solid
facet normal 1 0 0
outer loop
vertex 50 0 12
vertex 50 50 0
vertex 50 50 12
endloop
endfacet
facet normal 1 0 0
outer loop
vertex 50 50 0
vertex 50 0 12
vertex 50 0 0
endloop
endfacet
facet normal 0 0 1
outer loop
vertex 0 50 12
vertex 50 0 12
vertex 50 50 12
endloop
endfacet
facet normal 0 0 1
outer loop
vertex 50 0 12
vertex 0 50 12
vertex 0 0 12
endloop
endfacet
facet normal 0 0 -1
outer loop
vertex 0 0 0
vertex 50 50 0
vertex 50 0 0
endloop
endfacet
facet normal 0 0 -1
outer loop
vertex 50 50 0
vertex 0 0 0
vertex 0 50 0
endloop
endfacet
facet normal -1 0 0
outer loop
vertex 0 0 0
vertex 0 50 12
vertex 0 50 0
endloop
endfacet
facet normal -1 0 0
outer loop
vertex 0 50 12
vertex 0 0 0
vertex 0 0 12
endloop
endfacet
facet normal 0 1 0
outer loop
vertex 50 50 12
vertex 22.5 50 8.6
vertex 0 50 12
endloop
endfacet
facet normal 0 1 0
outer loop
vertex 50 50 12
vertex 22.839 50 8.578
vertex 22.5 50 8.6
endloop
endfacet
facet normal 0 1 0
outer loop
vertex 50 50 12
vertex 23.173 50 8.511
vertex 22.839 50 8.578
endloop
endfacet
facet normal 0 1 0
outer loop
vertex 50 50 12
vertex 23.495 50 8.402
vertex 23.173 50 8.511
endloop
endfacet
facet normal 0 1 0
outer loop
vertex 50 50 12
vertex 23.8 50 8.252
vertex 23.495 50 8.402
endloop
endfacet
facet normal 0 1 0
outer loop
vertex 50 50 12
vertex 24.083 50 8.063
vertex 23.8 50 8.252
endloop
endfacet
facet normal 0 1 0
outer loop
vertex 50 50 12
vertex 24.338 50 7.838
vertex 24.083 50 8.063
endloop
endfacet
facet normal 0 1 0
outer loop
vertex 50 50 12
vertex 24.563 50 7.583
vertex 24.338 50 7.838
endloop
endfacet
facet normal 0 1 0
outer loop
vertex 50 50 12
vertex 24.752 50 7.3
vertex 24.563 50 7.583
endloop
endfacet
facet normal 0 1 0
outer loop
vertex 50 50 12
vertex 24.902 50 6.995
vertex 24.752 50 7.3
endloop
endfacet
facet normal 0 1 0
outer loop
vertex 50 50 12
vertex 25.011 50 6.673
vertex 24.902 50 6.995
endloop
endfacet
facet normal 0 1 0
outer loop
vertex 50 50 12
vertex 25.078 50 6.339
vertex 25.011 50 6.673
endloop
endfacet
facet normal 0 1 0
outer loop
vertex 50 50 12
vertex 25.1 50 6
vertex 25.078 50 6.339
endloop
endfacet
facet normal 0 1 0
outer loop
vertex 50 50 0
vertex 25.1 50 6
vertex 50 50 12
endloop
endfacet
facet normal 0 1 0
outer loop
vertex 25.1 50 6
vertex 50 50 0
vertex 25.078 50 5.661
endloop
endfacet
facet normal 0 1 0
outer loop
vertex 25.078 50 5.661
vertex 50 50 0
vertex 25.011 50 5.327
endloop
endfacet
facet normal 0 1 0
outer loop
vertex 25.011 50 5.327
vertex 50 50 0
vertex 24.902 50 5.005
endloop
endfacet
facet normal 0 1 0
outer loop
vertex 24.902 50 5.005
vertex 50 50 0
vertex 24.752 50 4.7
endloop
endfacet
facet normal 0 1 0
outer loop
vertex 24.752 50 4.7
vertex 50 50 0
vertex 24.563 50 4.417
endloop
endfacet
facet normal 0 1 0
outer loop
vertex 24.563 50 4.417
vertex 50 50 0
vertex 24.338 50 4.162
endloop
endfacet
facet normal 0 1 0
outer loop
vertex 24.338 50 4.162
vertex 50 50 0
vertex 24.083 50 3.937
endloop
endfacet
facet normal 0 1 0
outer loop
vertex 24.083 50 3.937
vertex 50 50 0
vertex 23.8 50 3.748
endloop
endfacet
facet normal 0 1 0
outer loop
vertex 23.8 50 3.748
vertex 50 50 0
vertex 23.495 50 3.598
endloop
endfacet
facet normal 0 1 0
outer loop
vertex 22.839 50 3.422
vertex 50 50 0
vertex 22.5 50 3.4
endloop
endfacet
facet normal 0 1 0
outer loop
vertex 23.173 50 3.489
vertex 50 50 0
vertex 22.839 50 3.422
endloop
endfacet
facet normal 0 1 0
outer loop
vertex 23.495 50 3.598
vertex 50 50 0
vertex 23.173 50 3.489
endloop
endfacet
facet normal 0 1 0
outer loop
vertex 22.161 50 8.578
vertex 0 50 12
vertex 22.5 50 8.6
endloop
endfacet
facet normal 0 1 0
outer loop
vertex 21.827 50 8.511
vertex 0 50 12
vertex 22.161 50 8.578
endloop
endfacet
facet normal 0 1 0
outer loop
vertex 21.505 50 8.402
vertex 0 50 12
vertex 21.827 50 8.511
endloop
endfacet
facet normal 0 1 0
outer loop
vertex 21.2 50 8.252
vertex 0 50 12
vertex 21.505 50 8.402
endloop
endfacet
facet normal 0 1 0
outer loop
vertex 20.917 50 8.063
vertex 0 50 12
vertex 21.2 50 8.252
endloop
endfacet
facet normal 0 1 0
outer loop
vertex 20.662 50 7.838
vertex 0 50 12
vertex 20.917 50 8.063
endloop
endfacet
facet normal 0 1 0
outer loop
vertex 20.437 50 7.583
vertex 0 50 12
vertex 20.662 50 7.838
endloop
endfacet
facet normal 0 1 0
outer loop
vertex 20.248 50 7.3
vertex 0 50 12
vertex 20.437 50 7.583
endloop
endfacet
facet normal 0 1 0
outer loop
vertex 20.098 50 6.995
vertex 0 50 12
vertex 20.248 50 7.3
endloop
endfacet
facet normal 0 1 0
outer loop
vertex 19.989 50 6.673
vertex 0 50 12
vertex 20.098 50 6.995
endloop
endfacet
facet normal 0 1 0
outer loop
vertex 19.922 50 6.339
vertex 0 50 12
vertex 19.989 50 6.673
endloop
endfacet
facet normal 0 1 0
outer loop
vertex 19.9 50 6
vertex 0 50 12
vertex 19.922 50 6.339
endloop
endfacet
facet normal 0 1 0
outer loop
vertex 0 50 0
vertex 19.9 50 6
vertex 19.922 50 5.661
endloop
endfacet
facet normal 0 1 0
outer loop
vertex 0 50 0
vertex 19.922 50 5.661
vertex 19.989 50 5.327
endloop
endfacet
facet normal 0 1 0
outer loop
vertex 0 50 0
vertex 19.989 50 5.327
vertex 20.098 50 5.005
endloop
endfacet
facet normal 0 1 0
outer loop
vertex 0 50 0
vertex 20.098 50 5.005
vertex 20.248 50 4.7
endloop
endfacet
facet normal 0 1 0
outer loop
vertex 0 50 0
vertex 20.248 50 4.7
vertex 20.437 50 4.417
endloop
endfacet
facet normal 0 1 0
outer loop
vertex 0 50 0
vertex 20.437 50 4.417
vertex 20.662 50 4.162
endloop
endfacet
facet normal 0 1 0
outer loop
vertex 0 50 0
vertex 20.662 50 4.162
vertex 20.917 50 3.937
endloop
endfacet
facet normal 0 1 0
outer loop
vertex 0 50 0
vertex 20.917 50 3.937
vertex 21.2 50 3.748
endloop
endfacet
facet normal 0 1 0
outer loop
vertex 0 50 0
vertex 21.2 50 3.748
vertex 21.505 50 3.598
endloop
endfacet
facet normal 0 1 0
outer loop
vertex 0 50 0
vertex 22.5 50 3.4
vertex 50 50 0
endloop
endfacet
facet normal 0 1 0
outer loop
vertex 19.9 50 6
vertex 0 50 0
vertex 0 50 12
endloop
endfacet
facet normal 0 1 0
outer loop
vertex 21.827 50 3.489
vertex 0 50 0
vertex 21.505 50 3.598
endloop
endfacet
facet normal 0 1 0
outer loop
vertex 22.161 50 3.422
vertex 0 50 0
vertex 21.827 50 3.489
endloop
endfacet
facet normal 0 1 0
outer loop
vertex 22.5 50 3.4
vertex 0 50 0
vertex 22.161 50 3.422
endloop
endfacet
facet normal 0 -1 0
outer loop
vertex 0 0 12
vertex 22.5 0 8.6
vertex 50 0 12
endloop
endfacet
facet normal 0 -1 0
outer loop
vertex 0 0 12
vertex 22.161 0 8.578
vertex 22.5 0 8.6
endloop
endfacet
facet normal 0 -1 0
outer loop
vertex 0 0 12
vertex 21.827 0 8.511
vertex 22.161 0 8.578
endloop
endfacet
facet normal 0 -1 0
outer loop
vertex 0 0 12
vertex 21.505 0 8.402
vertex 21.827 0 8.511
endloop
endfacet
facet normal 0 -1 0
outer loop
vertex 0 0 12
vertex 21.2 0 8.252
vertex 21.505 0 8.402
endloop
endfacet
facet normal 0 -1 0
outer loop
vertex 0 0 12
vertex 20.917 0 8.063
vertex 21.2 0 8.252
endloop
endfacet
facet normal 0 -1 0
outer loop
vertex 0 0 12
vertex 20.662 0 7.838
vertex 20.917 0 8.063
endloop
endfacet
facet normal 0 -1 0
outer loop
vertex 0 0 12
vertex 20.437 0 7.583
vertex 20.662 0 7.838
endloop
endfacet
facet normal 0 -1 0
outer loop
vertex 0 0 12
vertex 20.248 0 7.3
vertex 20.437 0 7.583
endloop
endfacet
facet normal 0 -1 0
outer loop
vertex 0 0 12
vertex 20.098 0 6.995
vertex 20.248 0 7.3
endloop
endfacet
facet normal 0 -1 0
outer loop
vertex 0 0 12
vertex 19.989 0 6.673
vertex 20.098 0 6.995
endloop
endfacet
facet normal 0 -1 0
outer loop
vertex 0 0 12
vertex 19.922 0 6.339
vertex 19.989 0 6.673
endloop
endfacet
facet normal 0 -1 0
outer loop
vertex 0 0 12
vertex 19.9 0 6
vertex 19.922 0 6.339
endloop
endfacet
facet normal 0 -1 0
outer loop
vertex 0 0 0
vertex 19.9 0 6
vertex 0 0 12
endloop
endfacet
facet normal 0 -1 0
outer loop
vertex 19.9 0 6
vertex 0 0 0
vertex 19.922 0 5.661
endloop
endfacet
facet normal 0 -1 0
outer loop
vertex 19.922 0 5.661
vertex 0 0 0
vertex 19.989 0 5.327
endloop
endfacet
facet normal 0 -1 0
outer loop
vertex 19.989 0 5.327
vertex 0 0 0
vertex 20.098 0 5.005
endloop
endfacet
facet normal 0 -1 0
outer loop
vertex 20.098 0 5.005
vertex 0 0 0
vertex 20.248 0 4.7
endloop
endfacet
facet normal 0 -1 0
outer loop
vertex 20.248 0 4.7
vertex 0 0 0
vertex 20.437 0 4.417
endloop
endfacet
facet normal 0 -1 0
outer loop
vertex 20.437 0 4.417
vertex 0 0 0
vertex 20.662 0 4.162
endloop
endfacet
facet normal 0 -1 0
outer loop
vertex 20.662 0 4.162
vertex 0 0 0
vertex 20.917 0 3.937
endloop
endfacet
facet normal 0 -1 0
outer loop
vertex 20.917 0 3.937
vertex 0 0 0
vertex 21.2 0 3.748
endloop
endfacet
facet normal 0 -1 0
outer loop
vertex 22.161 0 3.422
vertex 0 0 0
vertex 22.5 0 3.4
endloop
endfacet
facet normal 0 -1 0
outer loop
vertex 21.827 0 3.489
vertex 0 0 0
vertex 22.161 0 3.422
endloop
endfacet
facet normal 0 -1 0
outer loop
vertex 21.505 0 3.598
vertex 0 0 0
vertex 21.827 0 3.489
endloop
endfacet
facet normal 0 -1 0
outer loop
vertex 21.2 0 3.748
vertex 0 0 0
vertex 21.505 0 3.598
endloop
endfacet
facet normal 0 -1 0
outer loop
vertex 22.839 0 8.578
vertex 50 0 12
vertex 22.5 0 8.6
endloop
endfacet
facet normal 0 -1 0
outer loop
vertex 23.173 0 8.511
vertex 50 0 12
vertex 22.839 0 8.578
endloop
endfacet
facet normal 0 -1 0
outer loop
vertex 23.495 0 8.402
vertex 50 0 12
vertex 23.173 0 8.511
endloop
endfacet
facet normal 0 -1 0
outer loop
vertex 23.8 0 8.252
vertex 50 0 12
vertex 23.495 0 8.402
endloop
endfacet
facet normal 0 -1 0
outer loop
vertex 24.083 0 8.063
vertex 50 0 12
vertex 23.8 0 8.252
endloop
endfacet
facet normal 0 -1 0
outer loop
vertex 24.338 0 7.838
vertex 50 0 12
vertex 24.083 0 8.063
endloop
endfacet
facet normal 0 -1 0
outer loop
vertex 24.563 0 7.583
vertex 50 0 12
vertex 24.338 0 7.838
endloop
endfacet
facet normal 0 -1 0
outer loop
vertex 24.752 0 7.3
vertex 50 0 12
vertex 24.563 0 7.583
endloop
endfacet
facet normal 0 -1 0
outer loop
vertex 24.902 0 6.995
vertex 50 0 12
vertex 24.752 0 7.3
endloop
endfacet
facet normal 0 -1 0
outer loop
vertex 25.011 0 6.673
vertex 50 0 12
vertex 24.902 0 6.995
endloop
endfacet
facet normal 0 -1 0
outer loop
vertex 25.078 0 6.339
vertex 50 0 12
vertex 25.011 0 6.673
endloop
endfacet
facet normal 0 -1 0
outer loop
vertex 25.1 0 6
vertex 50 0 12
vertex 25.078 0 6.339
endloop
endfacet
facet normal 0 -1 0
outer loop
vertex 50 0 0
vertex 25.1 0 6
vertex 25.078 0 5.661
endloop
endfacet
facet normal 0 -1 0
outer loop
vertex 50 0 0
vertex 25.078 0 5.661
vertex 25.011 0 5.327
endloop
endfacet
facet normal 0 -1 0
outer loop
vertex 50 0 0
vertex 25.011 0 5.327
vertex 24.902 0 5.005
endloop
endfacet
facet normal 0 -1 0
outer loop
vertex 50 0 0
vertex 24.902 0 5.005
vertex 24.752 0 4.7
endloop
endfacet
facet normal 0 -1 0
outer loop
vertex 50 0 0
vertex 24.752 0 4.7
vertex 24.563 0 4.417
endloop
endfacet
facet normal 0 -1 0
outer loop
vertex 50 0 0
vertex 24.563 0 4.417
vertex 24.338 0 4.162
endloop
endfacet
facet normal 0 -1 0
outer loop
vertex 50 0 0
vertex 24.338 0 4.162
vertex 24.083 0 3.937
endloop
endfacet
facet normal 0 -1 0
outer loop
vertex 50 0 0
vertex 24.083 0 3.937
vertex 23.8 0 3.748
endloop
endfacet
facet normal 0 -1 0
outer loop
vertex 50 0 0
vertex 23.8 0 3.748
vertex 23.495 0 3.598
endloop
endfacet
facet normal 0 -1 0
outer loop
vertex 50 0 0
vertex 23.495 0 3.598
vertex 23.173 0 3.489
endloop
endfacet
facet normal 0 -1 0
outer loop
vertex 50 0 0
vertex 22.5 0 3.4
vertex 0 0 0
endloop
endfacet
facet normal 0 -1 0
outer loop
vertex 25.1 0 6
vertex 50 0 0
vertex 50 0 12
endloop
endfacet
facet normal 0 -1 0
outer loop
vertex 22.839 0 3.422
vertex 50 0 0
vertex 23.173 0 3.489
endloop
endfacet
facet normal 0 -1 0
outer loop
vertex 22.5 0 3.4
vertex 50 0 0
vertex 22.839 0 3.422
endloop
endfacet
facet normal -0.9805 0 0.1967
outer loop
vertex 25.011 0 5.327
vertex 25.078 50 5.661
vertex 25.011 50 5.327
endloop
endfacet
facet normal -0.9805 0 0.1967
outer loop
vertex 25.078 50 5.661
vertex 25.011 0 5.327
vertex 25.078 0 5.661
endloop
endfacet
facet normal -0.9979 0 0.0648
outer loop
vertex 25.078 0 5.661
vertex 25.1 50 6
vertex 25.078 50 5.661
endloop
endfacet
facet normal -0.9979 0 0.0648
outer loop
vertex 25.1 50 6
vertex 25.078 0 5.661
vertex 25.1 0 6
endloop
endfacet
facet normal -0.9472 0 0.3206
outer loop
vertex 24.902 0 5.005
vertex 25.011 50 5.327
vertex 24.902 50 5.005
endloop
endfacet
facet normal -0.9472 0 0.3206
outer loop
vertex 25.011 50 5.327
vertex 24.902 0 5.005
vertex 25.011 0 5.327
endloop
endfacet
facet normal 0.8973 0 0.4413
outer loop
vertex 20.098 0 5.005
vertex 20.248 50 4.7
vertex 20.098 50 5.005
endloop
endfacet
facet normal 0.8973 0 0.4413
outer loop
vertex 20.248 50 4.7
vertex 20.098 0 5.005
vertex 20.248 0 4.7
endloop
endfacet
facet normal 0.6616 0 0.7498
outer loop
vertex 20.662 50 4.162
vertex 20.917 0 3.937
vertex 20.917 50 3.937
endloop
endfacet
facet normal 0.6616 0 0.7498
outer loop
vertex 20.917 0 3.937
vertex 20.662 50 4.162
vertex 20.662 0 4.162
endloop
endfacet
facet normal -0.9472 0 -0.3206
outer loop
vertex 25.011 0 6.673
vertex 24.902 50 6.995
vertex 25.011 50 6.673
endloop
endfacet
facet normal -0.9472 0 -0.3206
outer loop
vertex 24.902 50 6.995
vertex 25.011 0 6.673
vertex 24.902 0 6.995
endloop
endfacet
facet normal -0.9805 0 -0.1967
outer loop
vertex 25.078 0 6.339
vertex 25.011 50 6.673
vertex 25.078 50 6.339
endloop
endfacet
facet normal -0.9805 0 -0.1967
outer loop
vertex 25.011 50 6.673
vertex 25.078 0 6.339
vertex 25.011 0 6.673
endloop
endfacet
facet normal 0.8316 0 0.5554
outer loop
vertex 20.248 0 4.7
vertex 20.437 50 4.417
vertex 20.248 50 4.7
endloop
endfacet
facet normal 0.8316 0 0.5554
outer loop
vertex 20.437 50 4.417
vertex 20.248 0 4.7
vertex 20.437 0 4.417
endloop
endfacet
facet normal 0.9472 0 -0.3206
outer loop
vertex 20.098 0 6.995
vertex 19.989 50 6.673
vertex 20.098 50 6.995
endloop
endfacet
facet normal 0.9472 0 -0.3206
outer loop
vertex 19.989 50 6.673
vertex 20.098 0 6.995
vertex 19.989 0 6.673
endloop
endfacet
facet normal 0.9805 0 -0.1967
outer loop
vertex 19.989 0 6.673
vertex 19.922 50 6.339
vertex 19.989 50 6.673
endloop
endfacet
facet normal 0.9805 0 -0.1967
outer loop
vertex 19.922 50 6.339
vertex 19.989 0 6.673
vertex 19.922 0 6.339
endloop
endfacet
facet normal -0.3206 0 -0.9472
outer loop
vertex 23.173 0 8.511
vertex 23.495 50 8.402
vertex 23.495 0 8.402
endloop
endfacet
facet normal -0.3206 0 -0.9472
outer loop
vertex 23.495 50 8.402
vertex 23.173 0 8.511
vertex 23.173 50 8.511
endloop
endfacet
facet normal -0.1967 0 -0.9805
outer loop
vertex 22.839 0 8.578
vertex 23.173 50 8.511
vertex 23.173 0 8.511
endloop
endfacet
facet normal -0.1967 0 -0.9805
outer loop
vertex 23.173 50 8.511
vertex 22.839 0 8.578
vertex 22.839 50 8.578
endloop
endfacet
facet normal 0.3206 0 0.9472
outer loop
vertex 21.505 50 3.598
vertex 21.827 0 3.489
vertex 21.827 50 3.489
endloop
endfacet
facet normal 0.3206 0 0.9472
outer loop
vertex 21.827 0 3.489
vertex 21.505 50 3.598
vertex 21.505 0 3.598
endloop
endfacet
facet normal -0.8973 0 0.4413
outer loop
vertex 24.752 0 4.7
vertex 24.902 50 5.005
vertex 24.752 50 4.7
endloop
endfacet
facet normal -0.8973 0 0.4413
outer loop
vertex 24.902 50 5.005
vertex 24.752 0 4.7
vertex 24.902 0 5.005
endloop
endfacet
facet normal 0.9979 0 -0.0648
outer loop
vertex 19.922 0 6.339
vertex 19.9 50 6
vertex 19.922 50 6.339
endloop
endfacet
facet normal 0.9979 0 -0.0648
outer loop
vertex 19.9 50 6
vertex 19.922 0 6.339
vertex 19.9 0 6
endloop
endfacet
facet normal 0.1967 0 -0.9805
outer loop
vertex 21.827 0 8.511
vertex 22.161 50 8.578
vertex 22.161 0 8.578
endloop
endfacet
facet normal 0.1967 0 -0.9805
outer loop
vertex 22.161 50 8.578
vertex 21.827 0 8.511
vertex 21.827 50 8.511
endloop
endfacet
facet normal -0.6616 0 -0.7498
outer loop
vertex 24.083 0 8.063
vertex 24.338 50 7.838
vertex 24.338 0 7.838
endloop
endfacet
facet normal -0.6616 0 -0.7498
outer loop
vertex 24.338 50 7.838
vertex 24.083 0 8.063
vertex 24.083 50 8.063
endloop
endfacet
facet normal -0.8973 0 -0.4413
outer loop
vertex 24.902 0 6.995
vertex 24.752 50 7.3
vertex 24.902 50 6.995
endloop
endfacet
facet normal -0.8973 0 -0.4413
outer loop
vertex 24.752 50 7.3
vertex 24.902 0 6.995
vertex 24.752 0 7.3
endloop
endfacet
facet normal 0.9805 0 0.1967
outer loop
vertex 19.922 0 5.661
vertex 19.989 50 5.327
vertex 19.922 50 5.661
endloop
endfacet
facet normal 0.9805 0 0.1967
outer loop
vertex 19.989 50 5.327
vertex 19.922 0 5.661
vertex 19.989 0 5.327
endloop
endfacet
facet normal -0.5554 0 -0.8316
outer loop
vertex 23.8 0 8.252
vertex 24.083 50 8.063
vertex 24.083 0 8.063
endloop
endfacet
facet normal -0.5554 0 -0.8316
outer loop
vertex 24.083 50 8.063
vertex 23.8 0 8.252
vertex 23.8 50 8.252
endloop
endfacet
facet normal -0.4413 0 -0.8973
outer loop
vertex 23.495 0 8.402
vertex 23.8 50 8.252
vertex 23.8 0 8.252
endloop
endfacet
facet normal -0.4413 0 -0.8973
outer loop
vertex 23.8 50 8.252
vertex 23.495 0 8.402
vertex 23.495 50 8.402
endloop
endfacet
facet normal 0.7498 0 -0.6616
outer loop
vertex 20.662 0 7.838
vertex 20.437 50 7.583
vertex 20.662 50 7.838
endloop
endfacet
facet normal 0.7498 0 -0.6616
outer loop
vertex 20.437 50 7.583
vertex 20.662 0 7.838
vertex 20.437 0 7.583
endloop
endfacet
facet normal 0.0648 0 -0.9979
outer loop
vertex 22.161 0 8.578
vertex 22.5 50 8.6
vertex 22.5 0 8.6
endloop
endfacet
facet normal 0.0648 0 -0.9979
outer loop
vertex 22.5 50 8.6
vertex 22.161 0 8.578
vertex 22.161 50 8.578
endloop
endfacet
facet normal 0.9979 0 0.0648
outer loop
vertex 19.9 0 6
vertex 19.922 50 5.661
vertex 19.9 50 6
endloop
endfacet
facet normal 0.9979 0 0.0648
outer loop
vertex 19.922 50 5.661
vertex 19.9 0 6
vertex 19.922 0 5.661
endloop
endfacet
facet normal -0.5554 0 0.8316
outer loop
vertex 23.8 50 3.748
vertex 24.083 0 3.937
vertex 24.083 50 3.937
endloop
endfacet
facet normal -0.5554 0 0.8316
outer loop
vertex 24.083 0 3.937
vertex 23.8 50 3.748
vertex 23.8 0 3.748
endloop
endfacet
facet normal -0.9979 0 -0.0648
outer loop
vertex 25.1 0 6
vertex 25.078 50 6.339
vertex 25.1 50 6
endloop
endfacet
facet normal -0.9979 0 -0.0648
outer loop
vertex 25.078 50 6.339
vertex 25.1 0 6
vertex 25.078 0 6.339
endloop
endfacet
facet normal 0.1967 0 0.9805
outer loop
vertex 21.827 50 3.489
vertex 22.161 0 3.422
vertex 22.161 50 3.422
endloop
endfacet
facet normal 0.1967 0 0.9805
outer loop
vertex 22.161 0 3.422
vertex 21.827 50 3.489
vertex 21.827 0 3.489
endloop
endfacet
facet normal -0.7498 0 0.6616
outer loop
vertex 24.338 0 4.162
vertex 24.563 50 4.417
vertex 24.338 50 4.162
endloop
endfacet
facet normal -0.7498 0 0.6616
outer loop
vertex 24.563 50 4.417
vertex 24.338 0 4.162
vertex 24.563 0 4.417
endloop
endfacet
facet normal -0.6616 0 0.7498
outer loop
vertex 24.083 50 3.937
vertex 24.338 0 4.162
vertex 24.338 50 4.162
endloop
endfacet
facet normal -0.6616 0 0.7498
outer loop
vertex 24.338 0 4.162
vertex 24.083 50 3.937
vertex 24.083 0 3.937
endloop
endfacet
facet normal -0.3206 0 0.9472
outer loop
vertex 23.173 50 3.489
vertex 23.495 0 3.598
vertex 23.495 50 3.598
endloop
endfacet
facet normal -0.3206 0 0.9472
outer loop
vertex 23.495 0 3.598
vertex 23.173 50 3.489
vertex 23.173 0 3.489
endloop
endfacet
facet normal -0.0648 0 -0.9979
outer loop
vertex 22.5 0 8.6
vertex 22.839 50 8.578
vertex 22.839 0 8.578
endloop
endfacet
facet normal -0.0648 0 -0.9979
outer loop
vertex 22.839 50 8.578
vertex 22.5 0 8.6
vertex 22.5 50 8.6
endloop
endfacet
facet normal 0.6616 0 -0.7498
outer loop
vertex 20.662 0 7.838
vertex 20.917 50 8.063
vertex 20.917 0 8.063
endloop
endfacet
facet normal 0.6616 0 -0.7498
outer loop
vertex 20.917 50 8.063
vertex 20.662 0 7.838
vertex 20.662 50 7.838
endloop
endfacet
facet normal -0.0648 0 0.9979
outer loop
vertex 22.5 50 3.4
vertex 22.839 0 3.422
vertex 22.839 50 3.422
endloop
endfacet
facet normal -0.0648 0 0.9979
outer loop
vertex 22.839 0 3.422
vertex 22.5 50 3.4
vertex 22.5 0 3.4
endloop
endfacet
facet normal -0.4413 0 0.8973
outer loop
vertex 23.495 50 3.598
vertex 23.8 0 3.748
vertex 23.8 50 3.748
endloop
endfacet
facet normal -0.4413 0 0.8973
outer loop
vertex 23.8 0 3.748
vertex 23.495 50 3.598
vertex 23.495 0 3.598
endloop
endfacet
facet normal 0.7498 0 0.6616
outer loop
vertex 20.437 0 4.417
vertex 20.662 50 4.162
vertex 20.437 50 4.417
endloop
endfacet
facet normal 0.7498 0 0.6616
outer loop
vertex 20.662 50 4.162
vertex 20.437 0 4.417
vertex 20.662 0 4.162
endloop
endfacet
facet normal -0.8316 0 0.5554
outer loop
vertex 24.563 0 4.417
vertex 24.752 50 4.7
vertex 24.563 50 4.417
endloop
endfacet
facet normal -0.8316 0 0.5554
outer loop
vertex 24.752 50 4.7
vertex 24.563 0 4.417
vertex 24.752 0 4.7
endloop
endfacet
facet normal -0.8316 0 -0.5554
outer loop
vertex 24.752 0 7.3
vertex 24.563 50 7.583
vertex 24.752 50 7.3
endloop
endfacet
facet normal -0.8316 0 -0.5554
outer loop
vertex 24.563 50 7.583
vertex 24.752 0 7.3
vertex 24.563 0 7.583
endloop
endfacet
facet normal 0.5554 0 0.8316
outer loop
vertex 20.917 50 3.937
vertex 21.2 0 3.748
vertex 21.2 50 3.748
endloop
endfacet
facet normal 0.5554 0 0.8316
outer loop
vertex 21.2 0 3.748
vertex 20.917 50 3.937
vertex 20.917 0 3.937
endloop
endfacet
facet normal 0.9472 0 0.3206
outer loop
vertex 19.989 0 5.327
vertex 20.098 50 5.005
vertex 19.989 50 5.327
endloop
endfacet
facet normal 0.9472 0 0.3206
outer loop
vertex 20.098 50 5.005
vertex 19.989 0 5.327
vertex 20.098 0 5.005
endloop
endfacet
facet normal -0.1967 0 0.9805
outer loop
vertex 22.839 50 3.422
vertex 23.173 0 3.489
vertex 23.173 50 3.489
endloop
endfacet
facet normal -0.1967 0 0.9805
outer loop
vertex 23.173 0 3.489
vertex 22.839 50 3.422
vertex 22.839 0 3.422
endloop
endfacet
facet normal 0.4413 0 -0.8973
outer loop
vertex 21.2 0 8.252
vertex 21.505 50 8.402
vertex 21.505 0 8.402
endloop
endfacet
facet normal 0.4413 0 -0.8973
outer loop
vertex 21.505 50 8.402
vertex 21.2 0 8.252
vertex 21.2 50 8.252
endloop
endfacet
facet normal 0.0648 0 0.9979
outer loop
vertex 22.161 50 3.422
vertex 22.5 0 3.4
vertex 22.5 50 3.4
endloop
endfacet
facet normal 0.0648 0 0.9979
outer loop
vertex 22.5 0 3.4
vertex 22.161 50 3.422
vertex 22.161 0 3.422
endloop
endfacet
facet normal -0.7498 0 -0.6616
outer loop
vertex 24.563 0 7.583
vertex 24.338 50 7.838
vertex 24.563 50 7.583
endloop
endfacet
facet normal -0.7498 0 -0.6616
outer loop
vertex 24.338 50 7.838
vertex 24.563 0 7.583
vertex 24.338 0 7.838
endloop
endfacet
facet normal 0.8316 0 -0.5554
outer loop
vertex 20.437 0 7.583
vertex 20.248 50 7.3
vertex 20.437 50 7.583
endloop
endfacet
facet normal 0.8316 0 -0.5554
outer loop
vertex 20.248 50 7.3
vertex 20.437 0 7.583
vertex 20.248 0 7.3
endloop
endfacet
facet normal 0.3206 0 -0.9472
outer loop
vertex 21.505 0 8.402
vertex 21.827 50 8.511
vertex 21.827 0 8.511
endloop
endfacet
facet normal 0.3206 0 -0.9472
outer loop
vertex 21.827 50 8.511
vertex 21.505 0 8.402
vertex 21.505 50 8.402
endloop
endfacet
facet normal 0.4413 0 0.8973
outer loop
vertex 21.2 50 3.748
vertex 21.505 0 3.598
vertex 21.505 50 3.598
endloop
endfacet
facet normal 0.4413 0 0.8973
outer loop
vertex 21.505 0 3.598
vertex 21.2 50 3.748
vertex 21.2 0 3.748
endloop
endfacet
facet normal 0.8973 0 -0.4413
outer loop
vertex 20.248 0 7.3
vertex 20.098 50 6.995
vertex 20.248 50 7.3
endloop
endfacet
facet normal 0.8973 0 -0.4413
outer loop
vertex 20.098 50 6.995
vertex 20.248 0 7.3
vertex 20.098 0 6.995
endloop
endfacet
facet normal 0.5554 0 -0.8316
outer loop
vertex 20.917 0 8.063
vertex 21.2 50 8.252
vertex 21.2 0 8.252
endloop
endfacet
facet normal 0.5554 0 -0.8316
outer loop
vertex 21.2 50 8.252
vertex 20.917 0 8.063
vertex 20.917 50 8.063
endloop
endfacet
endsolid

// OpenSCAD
// Spacer between black panel and silver frame rail
//
// Orientation:
//   X = length along the rail (50mm)
//   Y = depth bridging the gap, panel-side to frame-wall-side (50mm)
//   Z = height fitting inside rail (12mm)
//
// The screw passes through the Y axis (the 50mm gap).
// Panel-side face is at Y = 50, frame-wall-side face is at Y = 0.
// The spacer backs against the wall at Y = 0.

// === Parameters ===
length         = 50;    // along the rail
depth          = 50;     // bridging the gap (panel to frame wall)
height         = 12;     // fits inside the frame rail

lip_depth      = 6.4;    // frame rail lip depth (for reference)
panel_depth    = 16.8;   // panel face to wall (for reference)

// Screw hole
hole_diameter  = 5.2;    // #10 machine screw clearance
hole_from_panel = 9.7;   // hole center distance from panel edge

// === Derived ===
// Panel-side face is at Y = depth (50mm).
// Hole center measured from panel edge into the spacer:
hole_y = depth - hole_from_panel;  // 50 - 9.7 = 40.3mm from frame wall

// === Model ===
difference() {
    cube([length, depth, height]);

    // Screw hole through the depth (Y axis)
    // Centered on length (X), centered on height (Z)
    translate([22.5, -1, height / 2])
        rotate([-90, 0, 0])
            cylinder(h = depth + 2, d = hole_diameter, $fn = 48);
}

// === Print notes ===
// Best printed with the 50mm x 50mm face (XY) flat on the bed.
// The 12mm height becomes the Z print dimension.
//
// The lip_depth (6.4mm) describes how far the rail protrudes —
// the spacer at 12mm height fits neatly within the rail opening.
// Screw enters from the frame-wall side, passes through the 
// spacer, and the head bears against the frame.
